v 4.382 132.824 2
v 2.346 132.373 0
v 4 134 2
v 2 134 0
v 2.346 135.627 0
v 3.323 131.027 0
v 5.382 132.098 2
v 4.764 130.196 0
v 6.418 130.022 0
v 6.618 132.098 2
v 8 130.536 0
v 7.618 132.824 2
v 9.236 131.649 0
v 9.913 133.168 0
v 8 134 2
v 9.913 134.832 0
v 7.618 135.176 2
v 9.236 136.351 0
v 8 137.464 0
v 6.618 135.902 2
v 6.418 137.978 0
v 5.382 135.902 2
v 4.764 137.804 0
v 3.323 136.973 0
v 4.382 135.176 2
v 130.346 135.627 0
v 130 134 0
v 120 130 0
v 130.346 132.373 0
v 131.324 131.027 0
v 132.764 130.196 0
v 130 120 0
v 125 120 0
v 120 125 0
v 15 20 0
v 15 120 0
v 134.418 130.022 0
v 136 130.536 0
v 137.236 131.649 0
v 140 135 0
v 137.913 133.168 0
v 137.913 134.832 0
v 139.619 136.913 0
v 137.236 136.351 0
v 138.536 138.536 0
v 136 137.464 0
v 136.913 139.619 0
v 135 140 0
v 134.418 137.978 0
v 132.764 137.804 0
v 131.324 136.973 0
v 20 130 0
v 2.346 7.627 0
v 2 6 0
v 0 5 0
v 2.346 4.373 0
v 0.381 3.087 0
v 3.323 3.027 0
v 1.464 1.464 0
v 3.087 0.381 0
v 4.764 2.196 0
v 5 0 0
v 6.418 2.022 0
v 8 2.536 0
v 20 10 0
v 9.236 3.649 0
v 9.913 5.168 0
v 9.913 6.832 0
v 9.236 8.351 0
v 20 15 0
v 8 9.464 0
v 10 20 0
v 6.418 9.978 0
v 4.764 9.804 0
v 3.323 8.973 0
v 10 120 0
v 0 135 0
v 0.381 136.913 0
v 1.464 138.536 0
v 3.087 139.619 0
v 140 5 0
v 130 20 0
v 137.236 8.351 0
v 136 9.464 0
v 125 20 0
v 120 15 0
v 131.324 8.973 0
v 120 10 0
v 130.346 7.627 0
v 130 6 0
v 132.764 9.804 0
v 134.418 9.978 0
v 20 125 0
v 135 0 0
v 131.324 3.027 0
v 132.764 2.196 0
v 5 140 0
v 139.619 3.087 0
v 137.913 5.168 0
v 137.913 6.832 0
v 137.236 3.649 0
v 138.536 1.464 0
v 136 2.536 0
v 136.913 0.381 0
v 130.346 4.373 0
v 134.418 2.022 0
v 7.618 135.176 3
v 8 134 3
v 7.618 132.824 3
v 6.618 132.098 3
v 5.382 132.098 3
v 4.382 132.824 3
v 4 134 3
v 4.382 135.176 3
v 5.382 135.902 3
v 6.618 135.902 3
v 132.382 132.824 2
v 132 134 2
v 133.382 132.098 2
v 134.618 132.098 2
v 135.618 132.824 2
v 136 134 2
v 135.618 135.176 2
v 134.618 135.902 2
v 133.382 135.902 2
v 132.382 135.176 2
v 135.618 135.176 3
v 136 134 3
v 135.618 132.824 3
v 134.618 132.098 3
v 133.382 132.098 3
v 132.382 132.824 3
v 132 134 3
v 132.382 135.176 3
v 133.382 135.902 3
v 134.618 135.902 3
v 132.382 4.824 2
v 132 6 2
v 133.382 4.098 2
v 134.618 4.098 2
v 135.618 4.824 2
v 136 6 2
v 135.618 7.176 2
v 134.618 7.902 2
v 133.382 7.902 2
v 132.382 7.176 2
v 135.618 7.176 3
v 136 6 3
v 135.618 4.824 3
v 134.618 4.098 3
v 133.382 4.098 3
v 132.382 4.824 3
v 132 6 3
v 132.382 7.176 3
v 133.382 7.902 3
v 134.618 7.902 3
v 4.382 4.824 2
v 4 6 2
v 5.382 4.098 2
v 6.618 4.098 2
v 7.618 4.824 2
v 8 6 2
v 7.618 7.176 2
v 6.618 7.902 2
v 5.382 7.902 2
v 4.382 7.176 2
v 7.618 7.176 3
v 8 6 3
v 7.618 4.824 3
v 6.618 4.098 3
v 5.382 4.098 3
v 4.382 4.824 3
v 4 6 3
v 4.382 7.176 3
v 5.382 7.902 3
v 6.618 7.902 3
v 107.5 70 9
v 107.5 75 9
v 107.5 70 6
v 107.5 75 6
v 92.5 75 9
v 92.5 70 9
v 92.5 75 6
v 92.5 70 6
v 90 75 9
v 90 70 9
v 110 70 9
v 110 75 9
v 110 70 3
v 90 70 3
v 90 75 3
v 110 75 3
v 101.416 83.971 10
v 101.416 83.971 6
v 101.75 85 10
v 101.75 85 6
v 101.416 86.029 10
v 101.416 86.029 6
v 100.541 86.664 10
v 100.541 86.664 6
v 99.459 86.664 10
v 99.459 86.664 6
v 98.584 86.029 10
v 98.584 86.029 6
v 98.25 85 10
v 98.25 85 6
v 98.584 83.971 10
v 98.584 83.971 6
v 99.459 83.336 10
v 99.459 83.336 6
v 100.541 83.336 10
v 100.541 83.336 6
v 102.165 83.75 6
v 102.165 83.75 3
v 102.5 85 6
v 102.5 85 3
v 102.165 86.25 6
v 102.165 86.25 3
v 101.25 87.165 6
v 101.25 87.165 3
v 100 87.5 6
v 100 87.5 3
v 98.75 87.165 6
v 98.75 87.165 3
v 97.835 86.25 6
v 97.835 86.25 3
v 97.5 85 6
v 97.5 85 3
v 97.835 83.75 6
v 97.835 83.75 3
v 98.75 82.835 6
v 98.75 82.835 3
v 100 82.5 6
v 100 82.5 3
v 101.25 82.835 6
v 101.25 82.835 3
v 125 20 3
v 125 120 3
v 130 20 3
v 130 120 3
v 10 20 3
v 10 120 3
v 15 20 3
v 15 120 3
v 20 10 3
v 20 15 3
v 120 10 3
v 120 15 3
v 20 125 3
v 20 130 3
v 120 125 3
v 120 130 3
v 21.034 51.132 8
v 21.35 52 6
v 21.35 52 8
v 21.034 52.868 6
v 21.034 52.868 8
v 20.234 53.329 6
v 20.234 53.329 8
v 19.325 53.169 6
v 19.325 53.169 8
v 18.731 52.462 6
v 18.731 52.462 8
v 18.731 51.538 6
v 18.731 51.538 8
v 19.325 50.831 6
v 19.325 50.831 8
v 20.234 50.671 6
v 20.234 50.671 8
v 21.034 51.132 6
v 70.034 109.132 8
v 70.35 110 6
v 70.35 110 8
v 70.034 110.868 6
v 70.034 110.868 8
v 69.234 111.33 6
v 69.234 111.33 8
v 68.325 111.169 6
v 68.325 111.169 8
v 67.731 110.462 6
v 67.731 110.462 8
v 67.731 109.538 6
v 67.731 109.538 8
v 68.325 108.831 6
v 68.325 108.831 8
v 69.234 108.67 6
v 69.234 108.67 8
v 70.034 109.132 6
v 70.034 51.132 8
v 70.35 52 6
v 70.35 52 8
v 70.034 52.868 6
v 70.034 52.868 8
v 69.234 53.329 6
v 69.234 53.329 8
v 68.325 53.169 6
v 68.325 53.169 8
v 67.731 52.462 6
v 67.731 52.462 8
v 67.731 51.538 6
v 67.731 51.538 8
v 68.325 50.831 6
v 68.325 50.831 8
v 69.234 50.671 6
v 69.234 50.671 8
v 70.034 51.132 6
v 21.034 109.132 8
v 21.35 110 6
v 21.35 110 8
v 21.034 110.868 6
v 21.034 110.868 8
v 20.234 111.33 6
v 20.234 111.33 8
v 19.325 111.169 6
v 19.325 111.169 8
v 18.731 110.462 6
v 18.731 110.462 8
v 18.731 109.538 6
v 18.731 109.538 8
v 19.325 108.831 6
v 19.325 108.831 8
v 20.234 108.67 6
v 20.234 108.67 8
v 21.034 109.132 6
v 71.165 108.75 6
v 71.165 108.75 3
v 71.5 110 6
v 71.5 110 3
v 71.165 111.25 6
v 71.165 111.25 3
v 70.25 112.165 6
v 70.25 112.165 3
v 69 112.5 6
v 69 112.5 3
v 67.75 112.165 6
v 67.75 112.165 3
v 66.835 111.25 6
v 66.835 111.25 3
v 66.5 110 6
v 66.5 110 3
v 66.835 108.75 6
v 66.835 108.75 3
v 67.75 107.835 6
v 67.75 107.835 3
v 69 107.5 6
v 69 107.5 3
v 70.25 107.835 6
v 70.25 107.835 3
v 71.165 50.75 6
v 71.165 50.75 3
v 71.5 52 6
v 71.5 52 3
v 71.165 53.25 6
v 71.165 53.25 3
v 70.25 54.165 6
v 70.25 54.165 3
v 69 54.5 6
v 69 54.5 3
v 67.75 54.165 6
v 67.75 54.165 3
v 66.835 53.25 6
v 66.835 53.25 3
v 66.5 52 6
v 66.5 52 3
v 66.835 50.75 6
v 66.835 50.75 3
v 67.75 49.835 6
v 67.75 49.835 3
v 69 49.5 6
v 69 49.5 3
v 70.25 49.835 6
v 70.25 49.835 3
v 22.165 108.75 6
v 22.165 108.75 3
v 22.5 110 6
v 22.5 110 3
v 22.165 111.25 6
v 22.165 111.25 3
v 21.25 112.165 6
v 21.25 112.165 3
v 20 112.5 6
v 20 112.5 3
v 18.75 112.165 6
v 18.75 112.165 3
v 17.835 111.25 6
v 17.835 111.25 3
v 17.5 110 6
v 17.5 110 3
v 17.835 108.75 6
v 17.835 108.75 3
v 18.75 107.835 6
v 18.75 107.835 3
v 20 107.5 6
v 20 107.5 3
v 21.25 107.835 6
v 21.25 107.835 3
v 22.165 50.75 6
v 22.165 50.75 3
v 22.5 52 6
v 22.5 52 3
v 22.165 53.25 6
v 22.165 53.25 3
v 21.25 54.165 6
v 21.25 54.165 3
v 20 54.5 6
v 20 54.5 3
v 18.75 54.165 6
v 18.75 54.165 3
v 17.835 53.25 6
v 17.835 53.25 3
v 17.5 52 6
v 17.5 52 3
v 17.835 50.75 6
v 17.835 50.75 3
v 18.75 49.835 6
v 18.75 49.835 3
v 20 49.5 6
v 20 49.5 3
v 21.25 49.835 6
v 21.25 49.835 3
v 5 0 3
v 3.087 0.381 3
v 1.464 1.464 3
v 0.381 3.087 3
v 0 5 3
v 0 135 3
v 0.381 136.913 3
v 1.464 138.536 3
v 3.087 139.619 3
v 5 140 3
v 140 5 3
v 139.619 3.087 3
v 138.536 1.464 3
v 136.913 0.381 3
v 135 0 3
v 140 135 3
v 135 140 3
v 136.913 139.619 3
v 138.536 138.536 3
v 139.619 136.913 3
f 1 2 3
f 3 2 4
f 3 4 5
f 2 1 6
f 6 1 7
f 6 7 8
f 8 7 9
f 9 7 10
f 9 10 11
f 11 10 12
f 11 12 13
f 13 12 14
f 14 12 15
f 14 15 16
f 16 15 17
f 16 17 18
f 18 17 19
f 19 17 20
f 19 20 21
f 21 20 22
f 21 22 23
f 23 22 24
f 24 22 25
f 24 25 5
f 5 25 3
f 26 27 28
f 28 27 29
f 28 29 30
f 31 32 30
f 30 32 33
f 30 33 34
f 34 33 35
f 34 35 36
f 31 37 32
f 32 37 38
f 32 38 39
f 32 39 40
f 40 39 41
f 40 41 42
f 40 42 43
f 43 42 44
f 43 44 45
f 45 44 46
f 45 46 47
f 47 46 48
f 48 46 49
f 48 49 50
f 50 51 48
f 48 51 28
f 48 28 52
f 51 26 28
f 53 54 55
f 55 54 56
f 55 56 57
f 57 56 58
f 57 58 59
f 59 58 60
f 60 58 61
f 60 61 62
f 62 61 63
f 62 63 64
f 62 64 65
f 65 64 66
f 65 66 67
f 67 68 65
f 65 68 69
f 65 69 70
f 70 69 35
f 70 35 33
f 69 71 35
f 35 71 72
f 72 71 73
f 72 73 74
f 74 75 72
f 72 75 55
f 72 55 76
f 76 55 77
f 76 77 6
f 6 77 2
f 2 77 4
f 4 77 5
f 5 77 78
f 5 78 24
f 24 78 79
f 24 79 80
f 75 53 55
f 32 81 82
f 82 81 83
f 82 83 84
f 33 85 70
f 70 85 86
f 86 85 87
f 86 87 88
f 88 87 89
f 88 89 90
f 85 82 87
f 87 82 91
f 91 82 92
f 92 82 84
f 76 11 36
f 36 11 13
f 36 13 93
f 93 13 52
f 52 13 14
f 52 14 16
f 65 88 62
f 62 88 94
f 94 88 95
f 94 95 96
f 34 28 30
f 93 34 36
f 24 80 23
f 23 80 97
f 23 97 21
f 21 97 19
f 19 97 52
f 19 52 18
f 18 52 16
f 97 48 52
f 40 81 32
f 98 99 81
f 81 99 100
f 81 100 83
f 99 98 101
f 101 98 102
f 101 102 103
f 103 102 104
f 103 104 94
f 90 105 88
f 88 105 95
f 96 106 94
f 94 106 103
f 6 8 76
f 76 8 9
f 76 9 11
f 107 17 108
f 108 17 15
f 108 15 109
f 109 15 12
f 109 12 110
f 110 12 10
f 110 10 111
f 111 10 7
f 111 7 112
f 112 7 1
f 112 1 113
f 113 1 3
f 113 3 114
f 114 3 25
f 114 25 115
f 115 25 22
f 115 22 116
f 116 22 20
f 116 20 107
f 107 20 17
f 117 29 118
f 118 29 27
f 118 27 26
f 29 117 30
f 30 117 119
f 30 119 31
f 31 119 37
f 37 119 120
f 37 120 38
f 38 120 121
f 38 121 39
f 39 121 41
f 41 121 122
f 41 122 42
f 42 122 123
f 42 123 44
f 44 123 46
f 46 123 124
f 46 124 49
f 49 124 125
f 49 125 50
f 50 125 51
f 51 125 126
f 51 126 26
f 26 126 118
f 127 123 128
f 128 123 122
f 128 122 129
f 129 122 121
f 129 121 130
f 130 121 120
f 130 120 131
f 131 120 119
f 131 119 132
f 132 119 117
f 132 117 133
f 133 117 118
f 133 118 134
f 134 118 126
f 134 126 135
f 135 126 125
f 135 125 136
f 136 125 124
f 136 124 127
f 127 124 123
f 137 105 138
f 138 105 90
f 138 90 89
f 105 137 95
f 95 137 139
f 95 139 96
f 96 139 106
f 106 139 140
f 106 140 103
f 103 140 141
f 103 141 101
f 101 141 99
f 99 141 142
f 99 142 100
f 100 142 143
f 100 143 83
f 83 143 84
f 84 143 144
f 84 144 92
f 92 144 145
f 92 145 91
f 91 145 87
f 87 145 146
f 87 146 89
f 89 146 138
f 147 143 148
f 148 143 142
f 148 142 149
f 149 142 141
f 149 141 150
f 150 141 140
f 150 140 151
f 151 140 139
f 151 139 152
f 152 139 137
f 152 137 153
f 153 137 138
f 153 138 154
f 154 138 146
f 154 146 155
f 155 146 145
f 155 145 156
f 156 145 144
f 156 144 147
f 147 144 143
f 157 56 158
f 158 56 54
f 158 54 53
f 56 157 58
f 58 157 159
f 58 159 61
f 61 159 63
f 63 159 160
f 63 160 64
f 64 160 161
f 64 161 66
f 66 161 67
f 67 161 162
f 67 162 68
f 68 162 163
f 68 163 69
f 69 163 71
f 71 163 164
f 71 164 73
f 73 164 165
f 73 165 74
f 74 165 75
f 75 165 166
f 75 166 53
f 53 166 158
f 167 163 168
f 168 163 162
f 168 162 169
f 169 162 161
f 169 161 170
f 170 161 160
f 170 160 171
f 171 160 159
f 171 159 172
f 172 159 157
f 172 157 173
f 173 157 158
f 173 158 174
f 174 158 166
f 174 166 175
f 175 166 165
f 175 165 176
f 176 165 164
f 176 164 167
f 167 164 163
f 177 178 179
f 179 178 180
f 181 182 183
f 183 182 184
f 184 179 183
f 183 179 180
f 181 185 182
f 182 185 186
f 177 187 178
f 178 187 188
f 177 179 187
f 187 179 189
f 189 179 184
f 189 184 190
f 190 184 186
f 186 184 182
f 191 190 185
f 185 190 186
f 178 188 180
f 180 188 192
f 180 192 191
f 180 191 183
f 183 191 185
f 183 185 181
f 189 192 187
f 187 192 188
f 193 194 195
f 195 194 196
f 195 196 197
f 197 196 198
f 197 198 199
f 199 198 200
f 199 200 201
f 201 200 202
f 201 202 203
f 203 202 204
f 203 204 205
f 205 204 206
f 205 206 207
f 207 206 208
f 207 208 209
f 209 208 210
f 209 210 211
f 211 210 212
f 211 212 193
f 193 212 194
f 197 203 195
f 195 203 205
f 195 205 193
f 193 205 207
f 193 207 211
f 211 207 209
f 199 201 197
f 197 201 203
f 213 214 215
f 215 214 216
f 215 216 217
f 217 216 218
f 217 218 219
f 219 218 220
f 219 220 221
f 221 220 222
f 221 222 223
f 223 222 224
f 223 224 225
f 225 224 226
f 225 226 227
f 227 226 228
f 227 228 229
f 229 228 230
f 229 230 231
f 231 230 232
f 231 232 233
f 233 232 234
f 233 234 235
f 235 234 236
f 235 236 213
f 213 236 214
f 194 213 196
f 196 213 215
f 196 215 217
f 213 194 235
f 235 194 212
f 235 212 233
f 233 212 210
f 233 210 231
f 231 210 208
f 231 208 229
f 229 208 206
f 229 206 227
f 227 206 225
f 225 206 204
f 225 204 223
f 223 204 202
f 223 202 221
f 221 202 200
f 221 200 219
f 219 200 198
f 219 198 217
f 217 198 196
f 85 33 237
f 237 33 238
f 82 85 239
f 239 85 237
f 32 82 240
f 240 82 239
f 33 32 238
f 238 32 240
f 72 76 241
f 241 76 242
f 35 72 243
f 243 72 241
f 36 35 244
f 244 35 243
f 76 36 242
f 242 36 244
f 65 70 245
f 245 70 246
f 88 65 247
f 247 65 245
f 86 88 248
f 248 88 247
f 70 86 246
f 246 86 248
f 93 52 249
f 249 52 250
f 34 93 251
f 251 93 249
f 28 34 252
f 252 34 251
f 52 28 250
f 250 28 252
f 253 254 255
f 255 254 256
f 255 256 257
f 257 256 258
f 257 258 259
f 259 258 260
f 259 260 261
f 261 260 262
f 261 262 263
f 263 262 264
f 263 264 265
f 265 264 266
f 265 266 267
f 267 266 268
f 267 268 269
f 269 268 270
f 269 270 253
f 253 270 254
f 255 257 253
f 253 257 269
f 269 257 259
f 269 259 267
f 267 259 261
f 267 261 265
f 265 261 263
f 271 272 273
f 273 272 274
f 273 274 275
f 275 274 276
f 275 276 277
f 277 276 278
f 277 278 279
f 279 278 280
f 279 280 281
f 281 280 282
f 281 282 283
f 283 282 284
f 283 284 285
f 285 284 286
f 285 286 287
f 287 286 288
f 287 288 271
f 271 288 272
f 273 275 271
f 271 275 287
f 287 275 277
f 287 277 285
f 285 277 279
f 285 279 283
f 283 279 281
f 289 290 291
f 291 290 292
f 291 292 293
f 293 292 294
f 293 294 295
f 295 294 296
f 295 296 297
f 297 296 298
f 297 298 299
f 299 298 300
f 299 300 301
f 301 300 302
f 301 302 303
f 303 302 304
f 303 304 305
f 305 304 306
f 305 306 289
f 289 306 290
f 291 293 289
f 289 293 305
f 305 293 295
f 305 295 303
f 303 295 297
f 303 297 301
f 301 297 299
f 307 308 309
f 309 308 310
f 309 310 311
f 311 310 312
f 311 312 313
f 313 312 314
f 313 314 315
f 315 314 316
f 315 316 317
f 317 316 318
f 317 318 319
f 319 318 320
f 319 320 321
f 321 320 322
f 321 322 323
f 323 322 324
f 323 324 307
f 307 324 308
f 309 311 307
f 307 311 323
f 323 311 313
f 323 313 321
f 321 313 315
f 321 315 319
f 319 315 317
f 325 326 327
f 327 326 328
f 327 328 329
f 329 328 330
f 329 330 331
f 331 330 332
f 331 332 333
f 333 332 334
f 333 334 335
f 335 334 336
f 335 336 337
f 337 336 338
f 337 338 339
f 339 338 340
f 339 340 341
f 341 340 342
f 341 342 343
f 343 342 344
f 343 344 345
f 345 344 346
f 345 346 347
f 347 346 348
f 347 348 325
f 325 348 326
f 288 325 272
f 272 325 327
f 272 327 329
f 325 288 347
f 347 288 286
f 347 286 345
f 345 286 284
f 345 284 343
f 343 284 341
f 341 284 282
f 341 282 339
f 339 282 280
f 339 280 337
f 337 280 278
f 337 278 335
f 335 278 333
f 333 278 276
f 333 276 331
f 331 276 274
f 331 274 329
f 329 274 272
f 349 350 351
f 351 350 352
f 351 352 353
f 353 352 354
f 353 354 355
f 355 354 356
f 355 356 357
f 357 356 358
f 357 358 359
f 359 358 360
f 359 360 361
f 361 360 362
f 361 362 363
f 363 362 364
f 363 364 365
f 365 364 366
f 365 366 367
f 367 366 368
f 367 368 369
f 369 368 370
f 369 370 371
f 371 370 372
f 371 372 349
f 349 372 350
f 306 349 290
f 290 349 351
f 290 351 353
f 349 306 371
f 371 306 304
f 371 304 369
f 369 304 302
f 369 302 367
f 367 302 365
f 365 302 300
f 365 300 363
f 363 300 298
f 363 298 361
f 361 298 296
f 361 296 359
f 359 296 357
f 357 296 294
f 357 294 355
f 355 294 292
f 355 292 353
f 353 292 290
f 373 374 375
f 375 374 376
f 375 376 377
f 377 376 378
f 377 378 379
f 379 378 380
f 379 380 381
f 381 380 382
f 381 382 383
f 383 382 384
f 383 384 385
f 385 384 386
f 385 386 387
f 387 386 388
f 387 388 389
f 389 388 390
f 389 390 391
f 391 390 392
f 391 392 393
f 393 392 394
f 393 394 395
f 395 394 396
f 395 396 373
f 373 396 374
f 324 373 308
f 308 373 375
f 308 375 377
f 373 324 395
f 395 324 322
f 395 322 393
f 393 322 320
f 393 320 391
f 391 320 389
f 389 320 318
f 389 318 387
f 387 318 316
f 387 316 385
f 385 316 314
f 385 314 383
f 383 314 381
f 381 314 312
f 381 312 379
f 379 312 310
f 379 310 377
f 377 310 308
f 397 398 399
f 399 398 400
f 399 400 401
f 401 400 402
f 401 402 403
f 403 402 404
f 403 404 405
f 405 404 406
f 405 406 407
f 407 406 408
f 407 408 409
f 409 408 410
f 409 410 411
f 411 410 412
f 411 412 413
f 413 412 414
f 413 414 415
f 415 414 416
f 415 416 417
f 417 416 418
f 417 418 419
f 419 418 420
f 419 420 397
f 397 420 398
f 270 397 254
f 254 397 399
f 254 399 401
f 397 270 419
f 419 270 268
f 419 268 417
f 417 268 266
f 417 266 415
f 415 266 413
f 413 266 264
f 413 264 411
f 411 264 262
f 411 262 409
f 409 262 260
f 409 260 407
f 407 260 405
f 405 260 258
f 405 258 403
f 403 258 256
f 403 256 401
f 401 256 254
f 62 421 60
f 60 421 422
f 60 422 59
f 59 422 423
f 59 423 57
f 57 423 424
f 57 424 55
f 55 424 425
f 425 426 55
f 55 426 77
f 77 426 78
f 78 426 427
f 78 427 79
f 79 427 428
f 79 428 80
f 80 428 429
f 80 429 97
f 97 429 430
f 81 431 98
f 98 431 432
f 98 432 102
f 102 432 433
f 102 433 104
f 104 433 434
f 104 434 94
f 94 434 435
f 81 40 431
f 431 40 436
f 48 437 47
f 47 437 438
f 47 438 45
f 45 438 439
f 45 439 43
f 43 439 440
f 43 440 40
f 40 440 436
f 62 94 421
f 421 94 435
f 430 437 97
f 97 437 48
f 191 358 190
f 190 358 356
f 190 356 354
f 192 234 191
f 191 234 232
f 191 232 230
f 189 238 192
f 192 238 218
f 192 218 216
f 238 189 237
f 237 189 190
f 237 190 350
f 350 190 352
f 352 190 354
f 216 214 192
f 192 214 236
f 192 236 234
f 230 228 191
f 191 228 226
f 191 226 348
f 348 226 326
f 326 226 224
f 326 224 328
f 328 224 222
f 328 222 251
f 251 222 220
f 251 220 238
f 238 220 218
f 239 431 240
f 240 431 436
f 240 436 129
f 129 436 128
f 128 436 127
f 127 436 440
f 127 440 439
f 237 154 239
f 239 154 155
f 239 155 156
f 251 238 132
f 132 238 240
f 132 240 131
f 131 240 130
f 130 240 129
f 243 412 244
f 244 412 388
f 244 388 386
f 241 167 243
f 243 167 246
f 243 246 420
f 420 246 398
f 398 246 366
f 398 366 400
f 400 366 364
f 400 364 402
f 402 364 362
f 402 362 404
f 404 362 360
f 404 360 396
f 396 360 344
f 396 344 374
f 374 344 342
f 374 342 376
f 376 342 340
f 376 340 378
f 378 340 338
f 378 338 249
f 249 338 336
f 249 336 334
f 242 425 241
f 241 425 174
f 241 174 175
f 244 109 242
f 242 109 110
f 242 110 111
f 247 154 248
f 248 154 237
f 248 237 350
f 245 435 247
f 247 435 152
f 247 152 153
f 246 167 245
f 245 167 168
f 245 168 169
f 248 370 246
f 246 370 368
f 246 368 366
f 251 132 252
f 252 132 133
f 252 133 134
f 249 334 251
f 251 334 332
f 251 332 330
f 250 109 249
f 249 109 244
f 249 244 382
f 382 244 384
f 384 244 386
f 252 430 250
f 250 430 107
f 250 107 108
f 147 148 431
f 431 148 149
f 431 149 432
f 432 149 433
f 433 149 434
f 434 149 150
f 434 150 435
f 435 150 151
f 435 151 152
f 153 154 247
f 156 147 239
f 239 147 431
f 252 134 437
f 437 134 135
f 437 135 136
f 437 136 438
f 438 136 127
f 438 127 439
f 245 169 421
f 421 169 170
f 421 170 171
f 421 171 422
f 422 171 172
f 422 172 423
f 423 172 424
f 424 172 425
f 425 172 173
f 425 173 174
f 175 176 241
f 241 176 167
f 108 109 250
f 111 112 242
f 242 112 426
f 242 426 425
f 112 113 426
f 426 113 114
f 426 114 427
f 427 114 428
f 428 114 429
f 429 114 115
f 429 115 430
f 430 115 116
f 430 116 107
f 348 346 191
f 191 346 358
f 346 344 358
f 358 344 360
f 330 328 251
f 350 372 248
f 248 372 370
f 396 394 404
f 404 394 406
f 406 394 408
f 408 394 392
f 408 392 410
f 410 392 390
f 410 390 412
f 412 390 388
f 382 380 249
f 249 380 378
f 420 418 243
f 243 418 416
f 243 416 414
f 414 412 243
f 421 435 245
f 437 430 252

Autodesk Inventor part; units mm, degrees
ref_plane "YZ Plane" through (0, 0, 0) normal (1, 0, 0) x (0, 1, 0)
ref_plane "XZ Plane" through (0, 0, 0) normal (0, 1, 0) x (-1, 0, 0)
ref_plane "XY Plane" through (0, 0, 0) normal (0, 0, 1) x (1, 0, 0)
sketch "Sketch1" plane through (0, 0, 0) normal (0, 0, 1) x (1, 0, 0)
  line L0 (0, 0) -> (140, 0)
  line L1 (140, 0) -> (140, 140)
  line L2 (140, 140) -> (0, 140)
  line L3 (0, 140) -> (0, 0)
  dimension "d0" = 140
  dimension "d1" = 140
extrude "Extrusion1" add sketch "Sketch1" along normal blind 3
fillet "Fillet1" radius 5 4 edges at (140, 140, 1.5) (140, 0, 1.5) (0, 140, 1.5) (0, 0, 1.5)
sketch "Sketch2" plane through (0, 0, 3) normal (0, 0, 1) x (1, 0, 0)
  circle A0 centre (20, 110) radius 2.5
  line L0 (135, 140) -> (5, 140) projected
  line L1 (0, 135) -> (0, 5) projected
  circle A1 centre (69, 110) radius 2.5
  circle A2 centre (20, 52) radius 2.5
  circle A3 centre (69, 52) radius 2.5
  point P0 (0, 0)
  dimension "d5" = 5
  dimension "d6" = 30
  dimension "d7" = 20
  dimension "d8" = 5
  dimension "d9" = 30
  dimension "d10" = 69
  dimension "d11" = 5
  dimension "d12" = 20
  dimension "d13" = 88
  dimension "d14" = 5
  dimension "d15" = 88
  dimension "d16" = 69
extrude "Extrusion2" add sketch "Sketch2" along normal blind 3
sketch "Sketch3" plane through (20, 110, 6) normal (0, 0, 1) x (1, 0, 0)
  circle A0 centre (0, 0) radius 1.35
  circle A1 centre (49, 0) radius 2.5 projected
  circle A2 centre (49, 0) radius 1.35
  circle A3 centre (0, -58) radius 2.5 projected
  circle A4 centre (0, -58) radius 1.35
  circle A5 centre (49, -58) radius 2.5 projected
  circle A6 centre (49, -58) radius 1.35
  point P0 (-20, -110)
  dimension "d19" = 2.7
  dimension "d20" = 2.7
extrude "Extrusion3" add sketch "Sketch3" along normal blind 2 contours A0 | A2 | A4 | A6
sketch "Sketch4" plane through (0, 0, 3) normal (0, 0, 1) x (1, 0, 0)
  line L0 (135, 140) -> (5, 140) projected
  line L1 (0, 135) -> (0, 5) projected
  line L2 (140, 5) -> (140, 135) projected
  line L3 (5, 0) -> (135, 0) projected
  point P0 (0, 0)
  point P1 (6, 134)
  point P2 (134, 134)
  point P3 (6, 6)
  point P4 (134, 6)
  dimension "d30" = 6
  dimension "d31" = 6
  dimension "d32" = 6
  dimension "d33" = 6
  dimension "d34" = 6
  dimension "d35" = 6
  dimension "d36" = 6
  dimension "d37" = 6
hole "Hole2" at (134, 134, 3) at (6, 6, 3) at (134, 6, 3) at (6, 134, 3) direction (0, 0, -1) diameter 4 depth 15
sketch "Sketch5" plane through (0, 0, 3) normal (0, 0, 1) x (1, 0, 0)
  line L0 (20, 130) -> (120, 130)
  line L1 (120, 130) -> (120, 125)
  line L2 (120, 125) -> (20, 125)
  line L3 (20, 125) -> (20, 130)
  line L4 (135, 140) -> (5, 140) projected
  line L5 (140, 5) -> (140, 135) projected
  line L6 (20, 15) -> (120, 15)
  line L7 (120, 15) -> (120, 10)
  line L8 (120, 10) -> (20, 10)
  line L9 (20, 10) -> (20, 15)
  line L10 (5, 0) -> (135, 0) projected
  line L11 (10, 120) -> (15, 120)
  line L12 (15, 120) -> (15, 20)
  line L13 (15, 20) -> (10, 20)
  line L14 (10, 20) -> (10, 120)
  line L15 (0, 135) -> (0, 5) projected
  line L16 (125, 120) -> (130, 120)
  line L17 (130, 120) -> (130, 20)
  line L18 (130, 20) -> (125, 20)
  line L19 (125, 20) -> (125, 120)
  point P0 (0, 0)
  dimension "d45" = 10
  dimension "d46" = 5
  dimension "d47" = 20
  dimension "d48" = 100
  dimension "d49" = 100
  dimension "d50" = 5
  dimension "d51" = 20
  dimension "d52" = 10
  dimension "d53" = 5
  dimension "d54" = 100
  dimension "d55" = 20
  dimension "d56" = 10
  dimension "d57" = 5
  dimension "d58" = 100
  dimension "d59" = 10
  dimension "d60" = 20
extrude "Extrusion4" cut sketch "Sketch5" against normal blind 10
sketch "Sketch6" plane through (0, 0, 3) normal (0, 0, 1) x (1, 0, 0)
  circle A0 centre (100, 85) radius 2.5
  line L0 (140, 5) -> (140, 135) projected
  line L1 (135, 140) -> (5, 140) projected
  point P0 (0, 0)
  dimension "d63" = 5
  dimension "d66" = 40
  dimension "d67" = 55
extrude "Extrusion5" add sketch "Sketch6" along normal blind 3
sketch "Sketch7" plane through (100, 85, 6) normal (0, 0, 1) x (1, 0, 0)
  circle A0 centre (0, 0) radius 1.75
  point P0 (-100, -85)
  dimension "d68" = 3.5
extrude "Extrusion6" add sketch "Sketch7" along normal blind 4
sketch "Sketch8" plane through (0, 0, 3) normal (0, 0, 1) x (1, 0, 0)
  line L0 (90, 75) -> (110, 75)
  line L1 (110, 75) -> (110, 70)
  line L2 (110, 70) -> (90, 70)
  line L3 (90, 70) -> (90, 75)
  line L4 (140, 5) -> (140, 135) projected
  line L5 (5, 0) -> (135, 0) projected
  point P0 (0, 0)
  dimension "d71" = 20
  dimension "d72" = 30
  dimension "d73" = 5
  dimension "d74" = 70
extrude "Extrusion7" add sketch "Sketch8" along normal blind 6
sketch "Sketch9" plane through (0, 0, 9) normal (0, 0, 1) x (1, 0, 0)
  line L0 (90, 75) -> (110, 75) projected
  line L1 (110, 70) -> (90, 70) projected
  line L2 (92.5, 75) -> (107.5, 75)
  line L3 (107.5, 75) -> (107.5, 70)
  line L4 (107.5, 70) -> (92.5, 70)
  line L5 (92.5, 70) -> (92.5, 75)
  line L6 (110, 70) -> (110, 75) projected
  line L7 (90, 75) -> (90, 70) projected
  point P0 (0, 0)
  dimension "d77" = 2.5
  dimension "d78" = 2.5
extrude "Extrusion8" cut sketch "Sketch9" against normal blind 3 contours L0 L3 L1 L5
chamfer "Chamfer1" distance 2 angle 45 4 edges at (6, 8, 0) (134, 8, 0) (6, 136, 0) (134, 136, 0)
properties part number "Led deksel"
